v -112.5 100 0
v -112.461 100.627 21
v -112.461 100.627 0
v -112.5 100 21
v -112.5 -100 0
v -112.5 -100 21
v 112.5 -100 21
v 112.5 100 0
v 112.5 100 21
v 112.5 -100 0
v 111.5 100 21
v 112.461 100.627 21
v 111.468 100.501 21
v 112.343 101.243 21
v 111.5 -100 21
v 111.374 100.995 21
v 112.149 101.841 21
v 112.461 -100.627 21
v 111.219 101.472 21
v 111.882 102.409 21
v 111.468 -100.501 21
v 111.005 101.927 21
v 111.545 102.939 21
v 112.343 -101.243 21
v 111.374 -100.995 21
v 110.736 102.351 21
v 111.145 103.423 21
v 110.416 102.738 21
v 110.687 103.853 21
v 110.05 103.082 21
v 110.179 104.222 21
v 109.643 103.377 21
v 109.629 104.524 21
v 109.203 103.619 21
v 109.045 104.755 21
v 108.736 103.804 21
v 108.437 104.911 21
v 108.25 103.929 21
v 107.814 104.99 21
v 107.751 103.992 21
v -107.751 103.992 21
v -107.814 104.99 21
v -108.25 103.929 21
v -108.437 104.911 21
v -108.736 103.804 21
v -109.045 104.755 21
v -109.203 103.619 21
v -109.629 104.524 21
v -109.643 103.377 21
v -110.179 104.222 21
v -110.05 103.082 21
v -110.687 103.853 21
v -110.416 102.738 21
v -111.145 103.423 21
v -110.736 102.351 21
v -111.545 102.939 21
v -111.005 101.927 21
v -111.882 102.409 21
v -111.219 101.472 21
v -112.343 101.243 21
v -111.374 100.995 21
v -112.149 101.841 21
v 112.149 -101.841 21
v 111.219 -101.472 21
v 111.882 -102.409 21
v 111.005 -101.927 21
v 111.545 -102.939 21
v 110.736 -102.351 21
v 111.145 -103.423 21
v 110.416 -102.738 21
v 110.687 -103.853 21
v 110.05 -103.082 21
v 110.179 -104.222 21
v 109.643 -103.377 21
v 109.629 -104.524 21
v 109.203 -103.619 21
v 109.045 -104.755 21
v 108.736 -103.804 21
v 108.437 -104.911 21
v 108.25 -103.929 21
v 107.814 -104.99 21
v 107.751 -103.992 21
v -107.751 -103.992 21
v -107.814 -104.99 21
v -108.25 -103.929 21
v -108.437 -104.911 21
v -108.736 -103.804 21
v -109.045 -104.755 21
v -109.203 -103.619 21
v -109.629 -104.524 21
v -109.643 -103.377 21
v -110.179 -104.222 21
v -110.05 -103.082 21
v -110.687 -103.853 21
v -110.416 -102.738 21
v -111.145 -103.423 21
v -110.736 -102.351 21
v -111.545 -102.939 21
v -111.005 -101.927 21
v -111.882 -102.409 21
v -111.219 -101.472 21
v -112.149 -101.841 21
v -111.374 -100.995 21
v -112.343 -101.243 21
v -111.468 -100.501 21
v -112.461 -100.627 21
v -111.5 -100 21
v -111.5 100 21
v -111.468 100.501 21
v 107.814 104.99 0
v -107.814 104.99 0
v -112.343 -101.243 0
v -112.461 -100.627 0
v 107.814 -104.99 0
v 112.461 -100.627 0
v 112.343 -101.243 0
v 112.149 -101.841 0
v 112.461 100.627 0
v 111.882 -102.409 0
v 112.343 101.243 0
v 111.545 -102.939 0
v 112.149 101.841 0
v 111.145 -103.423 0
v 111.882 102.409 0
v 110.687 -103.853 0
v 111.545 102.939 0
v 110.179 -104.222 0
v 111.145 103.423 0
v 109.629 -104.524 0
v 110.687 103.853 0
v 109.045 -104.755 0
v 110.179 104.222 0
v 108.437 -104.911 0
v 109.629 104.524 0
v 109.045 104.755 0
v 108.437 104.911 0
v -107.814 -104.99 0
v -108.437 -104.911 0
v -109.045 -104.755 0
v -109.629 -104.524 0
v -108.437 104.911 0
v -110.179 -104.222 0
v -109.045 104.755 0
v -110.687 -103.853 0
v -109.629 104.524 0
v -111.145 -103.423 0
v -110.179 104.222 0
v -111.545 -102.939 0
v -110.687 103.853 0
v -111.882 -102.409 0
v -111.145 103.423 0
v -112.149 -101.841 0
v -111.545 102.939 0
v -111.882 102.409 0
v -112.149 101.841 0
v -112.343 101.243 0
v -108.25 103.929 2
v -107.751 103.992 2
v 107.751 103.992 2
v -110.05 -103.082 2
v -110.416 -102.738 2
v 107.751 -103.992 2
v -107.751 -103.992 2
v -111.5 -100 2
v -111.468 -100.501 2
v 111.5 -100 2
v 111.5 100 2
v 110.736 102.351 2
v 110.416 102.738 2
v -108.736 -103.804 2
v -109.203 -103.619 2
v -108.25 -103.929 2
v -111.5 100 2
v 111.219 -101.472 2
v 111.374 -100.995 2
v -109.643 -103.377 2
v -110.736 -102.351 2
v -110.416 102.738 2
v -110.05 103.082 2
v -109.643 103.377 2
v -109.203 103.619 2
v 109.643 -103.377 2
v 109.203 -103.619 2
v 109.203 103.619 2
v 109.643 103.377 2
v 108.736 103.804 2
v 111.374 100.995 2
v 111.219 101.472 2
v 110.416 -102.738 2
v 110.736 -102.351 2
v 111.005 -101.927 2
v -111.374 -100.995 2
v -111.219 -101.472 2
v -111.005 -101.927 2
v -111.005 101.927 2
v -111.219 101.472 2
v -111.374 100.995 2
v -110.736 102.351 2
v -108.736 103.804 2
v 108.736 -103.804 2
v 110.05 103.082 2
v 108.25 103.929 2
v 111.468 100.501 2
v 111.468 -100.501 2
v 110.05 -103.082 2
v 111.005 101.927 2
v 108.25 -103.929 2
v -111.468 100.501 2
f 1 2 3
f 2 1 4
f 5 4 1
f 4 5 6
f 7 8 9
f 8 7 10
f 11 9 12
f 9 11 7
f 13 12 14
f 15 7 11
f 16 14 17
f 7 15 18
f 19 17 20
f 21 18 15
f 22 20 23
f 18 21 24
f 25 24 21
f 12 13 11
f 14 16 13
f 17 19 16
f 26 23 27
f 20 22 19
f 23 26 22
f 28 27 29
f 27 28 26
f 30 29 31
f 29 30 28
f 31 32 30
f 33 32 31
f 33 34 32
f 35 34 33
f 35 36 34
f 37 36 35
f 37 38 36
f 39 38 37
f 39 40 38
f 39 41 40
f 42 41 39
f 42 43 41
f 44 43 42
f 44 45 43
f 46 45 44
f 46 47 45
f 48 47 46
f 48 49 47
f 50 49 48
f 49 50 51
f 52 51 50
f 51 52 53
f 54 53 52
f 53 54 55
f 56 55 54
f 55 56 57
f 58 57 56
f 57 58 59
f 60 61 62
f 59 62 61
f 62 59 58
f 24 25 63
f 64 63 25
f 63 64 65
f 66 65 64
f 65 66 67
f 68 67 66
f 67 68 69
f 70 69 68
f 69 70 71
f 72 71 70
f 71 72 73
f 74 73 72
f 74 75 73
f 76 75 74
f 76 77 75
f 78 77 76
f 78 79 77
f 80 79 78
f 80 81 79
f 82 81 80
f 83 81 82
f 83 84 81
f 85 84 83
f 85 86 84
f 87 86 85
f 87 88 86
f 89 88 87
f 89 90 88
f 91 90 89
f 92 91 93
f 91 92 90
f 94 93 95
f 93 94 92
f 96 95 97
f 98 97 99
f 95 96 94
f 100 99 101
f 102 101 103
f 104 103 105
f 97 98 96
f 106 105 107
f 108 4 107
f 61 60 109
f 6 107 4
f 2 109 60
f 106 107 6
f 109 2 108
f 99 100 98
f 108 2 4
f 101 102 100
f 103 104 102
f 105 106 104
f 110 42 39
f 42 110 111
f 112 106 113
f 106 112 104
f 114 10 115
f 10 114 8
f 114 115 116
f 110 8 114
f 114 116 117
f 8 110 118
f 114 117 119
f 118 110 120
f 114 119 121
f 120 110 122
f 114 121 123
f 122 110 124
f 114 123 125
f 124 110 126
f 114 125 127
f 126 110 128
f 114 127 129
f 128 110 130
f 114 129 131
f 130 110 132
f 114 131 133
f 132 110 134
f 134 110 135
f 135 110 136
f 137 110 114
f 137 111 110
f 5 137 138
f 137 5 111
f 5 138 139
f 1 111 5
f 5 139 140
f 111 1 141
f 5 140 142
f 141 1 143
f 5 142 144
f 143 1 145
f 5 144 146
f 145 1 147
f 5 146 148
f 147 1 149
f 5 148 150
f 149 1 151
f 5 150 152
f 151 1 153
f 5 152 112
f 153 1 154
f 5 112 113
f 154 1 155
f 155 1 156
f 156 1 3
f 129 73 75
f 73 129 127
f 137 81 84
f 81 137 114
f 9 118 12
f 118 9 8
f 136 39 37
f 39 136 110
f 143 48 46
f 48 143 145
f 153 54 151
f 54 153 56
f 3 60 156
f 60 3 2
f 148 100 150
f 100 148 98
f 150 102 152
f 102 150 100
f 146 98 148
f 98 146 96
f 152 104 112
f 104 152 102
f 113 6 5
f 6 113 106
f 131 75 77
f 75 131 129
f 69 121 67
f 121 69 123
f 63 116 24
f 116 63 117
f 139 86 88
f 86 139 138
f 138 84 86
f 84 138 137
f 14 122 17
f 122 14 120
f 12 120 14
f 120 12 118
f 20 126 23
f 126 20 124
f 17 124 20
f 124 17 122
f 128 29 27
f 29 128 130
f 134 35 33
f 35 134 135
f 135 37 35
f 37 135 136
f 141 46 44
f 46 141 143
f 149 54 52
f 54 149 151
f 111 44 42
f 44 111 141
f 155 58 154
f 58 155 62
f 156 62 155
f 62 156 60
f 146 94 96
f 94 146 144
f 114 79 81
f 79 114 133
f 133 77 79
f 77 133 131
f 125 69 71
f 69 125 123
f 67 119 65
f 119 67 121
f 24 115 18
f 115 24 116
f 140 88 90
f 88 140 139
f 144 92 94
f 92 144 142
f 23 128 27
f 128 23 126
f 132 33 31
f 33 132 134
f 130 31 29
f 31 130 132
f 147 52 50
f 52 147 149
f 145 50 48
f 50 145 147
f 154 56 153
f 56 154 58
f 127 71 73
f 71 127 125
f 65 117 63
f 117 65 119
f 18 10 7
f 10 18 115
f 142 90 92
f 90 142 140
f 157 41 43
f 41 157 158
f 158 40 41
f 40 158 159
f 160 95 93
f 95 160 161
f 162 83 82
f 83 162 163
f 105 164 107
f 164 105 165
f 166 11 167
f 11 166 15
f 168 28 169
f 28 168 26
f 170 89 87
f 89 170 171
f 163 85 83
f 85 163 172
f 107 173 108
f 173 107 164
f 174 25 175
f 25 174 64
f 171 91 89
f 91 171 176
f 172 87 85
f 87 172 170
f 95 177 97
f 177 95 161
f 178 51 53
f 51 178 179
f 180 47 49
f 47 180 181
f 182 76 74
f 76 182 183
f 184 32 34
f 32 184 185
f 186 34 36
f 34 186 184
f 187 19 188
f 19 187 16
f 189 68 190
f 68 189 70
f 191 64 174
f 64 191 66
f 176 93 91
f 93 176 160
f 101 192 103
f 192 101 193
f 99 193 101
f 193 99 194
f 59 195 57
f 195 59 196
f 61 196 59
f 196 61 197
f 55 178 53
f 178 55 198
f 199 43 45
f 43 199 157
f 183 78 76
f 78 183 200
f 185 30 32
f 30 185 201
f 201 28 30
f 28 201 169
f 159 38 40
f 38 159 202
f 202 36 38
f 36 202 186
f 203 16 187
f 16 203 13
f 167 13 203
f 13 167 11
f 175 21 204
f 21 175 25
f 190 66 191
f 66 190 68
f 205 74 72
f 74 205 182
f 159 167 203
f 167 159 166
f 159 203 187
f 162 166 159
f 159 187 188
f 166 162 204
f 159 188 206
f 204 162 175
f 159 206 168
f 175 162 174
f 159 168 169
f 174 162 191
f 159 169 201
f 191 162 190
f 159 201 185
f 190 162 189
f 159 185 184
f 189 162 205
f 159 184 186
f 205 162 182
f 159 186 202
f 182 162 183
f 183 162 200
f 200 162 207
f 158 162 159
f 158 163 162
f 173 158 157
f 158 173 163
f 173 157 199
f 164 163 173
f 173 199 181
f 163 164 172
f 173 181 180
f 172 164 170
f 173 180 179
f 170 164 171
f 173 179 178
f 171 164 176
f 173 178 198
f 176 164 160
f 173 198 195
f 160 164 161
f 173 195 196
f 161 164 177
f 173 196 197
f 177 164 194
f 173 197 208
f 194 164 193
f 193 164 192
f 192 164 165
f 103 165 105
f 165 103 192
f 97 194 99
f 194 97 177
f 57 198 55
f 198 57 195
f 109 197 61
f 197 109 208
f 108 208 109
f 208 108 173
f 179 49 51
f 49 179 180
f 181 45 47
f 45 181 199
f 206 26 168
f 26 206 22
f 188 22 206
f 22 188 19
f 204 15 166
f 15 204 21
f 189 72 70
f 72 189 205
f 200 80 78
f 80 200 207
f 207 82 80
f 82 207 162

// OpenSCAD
$fn = 50;


difference() {
	union() {
		hull() {
			translate(v = [-107.5000000000, 100.0000000000, 0]) {
				cylinder(h = 21, r = 5);
			}
			translate(v = [107.5000000000, 100.0000000000, 0]) {
				cylinder(h = 21, r = 5);
			}
			translate(v = [-107.5000000000, -100.0000000000, 0]) {
				cylinder(h = 21, r = 5);
			}
			translate(v = [107.5000000000, -100.0000000000, 0]) {
				cylinder(h = 21, r = 5);
			}
		}
	}
	union() {
		translate(v = [0, 0, 2]) {
			hull() {
				translate(v = [-107.5000000000, 100.0000000000, 0]) {
					cylinder(h = 19, r = 4);
				}
				translate(v = [107.5000000000, 100.0000000000, 0]) {
					cylinder(h = 19, r = 4);
				}
				translate(v = [-107.5000000000, -100.0000000000, 0]) {
					cylinder(h = 19, r = 4);
				}
				translate(v = [107.5000000000, -100.0000000000, 0]) {
					cylinder(h = 19, r = 4);
				}
			}
		}
	}
}
